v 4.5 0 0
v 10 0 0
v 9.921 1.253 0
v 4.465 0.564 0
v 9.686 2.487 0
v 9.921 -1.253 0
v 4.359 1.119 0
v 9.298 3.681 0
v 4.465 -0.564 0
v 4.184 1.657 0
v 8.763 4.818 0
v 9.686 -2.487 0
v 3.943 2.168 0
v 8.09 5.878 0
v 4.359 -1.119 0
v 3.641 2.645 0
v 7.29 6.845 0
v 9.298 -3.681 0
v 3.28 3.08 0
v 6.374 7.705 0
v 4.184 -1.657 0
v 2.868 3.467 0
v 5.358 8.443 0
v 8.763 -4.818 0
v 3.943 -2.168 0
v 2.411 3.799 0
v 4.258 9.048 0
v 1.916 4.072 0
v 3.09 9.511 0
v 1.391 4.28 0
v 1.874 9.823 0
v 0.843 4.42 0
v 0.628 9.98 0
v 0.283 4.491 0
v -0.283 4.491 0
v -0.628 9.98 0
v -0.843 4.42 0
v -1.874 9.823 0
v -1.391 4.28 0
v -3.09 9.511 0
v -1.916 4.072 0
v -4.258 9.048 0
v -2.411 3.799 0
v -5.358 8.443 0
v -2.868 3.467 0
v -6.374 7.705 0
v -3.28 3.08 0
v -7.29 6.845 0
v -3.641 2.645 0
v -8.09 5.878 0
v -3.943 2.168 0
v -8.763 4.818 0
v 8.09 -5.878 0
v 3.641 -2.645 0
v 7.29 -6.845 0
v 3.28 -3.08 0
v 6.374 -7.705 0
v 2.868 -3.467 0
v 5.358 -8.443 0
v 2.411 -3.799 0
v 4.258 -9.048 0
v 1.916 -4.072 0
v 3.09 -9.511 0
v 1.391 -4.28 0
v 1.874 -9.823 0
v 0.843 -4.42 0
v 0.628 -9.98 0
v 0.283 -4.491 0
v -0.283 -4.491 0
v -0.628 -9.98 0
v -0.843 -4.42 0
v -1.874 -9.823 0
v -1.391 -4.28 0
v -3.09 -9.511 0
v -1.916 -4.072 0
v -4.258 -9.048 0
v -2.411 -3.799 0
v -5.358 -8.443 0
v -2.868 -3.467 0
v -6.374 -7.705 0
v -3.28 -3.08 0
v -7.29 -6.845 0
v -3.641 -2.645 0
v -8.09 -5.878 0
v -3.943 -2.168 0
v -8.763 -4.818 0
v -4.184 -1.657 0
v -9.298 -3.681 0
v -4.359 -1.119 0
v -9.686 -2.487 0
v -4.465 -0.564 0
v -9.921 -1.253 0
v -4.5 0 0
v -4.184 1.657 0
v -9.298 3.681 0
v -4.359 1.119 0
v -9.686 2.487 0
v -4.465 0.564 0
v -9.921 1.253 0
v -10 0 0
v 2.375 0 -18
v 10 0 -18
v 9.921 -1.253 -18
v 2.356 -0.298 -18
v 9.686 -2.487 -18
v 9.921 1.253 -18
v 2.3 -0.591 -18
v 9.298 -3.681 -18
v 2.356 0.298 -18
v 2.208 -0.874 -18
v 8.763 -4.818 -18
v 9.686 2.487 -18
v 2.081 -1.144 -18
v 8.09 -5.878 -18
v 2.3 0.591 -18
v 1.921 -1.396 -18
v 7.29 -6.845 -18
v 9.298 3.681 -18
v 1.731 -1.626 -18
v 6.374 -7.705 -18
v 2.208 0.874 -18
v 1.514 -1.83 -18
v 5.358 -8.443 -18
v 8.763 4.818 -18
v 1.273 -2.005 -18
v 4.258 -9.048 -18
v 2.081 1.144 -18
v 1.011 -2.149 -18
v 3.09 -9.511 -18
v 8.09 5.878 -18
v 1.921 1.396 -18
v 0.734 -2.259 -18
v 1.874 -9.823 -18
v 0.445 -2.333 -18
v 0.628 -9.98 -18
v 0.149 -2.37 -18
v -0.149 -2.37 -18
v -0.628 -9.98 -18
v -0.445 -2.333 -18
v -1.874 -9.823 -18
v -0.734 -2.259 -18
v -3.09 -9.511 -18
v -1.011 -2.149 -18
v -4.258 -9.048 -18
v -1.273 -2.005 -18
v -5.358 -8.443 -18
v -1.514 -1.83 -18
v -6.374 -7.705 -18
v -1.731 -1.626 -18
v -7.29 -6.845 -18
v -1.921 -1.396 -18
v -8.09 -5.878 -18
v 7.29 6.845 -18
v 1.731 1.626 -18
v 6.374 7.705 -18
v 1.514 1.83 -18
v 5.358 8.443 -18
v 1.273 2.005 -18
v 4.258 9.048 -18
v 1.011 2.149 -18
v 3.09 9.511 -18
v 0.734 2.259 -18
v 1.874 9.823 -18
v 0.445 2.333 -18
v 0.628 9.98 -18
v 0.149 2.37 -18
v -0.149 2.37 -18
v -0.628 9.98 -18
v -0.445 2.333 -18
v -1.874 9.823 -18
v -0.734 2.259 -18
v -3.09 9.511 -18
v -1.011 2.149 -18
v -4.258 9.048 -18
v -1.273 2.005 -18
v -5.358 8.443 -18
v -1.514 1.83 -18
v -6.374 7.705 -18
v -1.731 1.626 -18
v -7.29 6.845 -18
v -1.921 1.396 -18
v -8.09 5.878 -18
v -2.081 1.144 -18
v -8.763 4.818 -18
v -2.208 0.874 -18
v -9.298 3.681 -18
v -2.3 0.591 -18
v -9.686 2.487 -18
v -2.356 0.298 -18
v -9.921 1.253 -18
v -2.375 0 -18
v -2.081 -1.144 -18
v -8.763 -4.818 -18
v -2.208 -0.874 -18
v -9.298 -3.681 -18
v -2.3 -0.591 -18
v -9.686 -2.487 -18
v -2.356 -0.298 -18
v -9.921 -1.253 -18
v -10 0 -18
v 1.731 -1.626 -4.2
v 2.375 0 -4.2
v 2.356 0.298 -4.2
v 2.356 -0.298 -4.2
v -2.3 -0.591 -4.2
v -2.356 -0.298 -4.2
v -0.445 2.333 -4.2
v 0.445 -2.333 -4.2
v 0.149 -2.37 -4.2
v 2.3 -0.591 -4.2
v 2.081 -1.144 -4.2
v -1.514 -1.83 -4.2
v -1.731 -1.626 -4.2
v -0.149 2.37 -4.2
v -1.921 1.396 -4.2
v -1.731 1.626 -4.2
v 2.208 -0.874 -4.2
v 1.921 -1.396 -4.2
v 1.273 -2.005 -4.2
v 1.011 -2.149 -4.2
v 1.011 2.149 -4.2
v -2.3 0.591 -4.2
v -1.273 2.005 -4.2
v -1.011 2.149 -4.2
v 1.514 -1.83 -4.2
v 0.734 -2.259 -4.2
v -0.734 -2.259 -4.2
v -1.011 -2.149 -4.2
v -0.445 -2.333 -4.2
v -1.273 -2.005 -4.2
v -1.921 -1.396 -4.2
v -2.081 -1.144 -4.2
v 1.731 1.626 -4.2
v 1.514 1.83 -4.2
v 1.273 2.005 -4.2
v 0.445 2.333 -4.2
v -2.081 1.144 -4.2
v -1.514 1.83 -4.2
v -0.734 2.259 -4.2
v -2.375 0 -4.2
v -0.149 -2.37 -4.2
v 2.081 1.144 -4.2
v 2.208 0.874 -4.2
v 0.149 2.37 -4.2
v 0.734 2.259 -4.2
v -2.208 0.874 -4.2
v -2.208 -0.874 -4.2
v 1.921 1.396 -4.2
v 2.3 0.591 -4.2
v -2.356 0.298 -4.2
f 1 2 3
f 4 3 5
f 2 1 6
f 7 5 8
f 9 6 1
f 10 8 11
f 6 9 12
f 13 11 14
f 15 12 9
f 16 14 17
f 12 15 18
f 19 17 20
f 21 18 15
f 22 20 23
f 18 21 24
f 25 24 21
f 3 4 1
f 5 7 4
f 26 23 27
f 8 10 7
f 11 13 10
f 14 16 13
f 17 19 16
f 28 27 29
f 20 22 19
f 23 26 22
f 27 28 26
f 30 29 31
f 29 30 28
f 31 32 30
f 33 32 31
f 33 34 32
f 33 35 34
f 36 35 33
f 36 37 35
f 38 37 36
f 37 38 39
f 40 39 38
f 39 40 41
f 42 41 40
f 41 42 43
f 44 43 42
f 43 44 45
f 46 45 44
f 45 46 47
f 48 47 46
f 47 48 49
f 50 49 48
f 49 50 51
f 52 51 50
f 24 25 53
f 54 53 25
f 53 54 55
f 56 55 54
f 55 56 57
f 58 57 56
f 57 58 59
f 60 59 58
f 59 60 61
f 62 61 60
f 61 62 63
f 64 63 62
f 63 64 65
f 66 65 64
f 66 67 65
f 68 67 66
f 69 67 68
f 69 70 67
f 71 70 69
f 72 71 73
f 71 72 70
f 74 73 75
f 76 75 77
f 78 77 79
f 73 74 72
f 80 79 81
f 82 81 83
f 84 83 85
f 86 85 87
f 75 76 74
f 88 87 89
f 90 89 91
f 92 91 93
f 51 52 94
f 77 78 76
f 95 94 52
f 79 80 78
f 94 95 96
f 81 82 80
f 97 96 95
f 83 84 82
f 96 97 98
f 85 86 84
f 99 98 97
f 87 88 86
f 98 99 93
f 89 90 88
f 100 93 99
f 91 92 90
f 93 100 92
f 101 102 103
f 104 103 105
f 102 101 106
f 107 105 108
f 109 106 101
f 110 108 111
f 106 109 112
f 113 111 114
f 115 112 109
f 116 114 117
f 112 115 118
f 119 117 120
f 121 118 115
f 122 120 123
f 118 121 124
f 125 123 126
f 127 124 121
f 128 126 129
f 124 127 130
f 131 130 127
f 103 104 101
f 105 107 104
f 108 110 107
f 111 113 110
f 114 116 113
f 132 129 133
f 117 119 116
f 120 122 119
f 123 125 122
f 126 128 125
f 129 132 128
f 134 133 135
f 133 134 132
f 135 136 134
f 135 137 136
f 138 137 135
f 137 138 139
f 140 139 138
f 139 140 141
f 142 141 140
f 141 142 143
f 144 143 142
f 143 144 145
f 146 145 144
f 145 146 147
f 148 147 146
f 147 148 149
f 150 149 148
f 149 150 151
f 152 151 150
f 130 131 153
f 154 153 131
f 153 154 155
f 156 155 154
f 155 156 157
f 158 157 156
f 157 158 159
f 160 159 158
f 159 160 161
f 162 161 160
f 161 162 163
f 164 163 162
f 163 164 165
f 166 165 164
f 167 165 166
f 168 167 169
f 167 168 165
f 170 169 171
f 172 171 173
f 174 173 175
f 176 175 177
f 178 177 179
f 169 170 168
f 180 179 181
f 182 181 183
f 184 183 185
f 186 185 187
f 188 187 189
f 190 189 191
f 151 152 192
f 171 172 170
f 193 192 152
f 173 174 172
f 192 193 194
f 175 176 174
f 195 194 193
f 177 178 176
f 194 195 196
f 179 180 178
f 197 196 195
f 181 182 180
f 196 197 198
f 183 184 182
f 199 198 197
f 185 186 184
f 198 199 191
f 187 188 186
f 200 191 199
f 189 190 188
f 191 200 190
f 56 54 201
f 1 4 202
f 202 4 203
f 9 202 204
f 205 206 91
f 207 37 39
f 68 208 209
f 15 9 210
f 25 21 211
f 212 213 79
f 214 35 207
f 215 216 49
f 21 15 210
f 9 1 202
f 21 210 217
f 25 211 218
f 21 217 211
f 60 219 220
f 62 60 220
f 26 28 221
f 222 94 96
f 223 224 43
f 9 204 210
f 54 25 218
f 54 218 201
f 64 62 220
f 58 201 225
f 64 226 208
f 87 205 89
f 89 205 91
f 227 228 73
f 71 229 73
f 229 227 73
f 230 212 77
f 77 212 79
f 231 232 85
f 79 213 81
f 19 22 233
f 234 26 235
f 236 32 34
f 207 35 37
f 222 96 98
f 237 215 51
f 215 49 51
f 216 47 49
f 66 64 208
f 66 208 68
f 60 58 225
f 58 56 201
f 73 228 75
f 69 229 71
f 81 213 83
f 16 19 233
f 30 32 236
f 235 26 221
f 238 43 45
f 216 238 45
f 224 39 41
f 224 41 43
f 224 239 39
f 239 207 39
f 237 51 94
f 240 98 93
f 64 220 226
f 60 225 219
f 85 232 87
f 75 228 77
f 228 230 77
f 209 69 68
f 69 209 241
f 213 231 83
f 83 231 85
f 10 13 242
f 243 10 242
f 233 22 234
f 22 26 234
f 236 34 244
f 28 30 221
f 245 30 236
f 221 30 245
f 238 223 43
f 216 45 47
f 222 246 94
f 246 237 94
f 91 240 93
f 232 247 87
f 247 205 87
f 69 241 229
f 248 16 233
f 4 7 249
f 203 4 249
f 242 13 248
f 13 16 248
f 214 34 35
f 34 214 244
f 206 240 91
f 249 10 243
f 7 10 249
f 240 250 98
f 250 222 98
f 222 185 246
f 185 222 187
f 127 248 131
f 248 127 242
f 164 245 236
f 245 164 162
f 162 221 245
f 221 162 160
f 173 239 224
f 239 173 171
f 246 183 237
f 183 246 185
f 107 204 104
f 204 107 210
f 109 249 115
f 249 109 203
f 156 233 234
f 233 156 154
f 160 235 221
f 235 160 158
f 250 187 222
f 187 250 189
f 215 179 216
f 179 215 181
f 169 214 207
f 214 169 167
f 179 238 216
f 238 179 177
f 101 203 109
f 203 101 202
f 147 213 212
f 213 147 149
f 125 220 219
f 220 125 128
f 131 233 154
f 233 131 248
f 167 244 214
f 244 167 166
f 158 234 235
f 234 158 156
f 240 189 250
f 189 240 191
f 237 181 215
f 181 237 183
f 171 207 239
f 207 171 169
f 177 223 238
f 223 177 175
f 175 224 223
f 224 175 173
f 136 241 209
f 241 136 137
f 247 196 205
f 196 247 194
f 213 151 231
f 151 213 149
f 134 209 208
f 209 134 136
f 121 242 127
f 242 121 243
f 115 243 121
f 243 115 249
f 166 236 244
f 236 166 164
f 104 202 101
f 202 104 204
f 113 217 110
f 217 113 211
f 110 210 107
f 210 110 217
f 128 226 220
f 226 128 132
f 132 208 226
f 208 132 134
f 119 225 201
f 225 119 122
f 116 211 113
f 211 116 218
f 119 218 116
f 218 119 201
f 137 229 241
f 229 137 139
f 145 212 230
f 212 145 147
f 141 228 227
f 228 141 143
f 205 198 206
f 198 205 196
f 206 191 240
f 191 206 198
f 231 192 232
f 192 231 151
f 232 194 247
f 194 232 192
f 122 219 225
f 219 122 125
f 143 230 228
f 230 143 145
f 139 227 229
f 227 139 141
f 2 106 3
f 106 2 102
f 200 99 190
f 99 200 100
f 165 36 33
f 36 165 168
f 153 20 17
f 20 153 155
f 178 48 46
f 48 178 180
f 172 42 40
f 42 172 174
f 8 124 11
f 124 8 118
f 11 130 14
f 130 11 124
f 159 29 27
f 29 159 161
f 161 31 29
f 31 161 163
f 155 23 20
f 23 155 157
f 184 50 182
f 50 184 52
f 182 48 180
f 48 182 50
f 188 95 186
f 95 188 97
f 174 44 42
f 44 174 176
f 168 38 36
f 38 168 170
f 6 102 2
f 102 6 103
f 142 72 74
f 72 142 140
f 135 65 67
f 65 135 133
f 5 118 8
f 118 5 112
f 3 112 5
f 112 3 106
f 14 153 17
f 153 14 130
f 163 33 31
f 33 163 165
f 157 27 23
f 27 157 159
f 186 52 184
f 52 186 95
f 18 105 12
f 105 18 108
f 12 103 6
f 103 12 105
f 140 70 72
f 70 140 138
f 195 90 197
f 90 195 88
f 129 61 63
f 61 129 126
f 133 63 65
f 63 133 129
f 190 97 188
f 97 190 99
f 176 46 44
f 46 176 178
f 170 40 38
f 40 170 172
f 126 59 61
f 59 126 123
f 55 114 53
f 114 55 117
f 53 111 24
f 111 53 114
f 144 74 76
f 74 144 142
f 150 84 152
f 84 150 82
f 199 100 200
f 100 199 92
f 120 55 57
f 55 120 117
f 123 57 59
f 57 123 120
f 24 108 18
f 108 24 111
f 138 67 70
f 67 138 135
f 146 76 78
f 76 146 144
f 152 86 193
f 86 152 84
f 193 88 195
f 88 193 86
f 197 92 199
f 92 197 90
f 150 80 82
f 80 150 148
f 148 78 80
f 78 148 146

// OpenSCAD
$fn = 50;


difference() {
	union() {
		translate(v = [0, 0, -18.0000000000]) {
			cylinder(h = 18, r = 10.0000000000);
		}
		cylinder(h = 0, r = 20.0000000000);
	}
	union() {
		translate(v = [0, 0, 0]) {
			rotate(a = [0, 0, 0]) {
				difference() {
					union() {
						#translate(v = [0, 0, -18.0000000000]) {
							cylinder(h = 18, r = 2.2500000000);
						}
						#translate(v = [0, 0, -4.2000000000]) {
							cylinder(h = 4.2000000000, r1 = 2.3750000000, r2 = 4.5000000000);
						}
						#translate(v = [0, 0, -18.0000000000]) {
							cylinder(h = 18, r = 2.3750000000);
						}
						#translate(v = [0, 0, -18.0000000000]) {
							cylinder(h = 18, r = 2.2500000000);
						}
					}
					union();
				}
			}
		}
	}
}
